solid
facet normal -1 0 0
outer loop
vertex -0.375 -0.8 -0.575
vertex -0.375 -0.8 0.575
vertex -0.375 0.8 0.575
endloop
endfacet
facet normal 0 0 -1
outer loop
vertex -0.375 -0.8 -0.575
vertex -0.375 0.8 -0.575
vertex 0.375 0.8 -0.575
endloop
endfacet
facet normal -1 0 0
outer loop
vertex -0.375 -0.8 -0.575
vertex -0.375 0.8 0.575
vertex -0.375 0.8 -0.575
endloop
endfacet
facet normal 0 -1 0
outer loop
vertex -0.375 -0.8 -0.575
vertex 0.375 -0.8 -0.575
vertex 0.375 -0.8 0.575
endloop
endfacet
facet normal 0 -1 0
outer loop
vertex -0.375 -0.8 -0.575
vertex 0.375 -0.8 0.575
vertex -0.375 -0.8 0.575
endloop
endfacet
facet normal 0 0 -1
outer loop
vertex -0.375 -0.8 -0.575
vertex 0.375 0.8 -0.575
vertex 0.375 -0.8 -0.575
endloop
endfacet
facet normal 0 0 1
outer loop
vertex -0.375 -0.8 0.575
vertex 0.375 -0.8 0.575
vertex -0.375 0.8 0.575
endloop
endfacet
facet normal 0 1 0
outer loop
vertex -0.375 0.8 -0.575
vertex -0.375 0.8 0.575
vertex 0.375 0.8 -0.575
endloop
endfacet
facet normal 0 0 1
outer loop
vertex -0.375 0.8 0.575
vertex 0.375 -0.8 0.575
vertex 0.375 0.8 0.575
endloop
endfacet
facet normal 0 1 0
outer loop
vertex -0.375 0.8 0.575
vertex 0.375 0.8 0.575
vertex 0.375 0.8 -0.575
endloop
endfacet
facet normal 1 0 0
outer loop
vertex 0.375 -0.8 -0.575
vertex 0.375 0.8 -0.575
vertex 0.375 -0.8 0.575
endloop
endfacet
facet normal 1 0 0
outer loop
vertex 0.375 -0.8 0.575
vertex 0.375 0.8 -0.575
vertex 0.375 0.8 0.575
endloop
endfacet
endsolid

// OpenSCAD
// Start: lazy_union
default_5_default_5();
// End: lazy_union

// Modules.

// 'PartMaterial undef-default - default 5.0'
module default_5_default_5() {
  // 'None : _combine_solids_and_holes'
  union() {
    // 'default : _combine_solids_and_holes'
    union() {
      // 'terminal'
      multmatrix(m=[[1.0, 0.0, 0.0, -0.375], [0.0, 1.0, 0.0, -0.8], [0.0, 0.0, 1.0, -0.575], [0.0, 0.0, 0.0, 1.0]]) {
        // 'terminal'
        color(c=[0.7529411764705882, 0.7529411764705882, 0.7529411764705882, 1.0]) {
          // 'terminal : _combine_solids_and_holes'
          union() {
            // 'terminal'
            cube(size=[0.75, 1.6, 1.15]);
          }
        }
      }
    }
  }
} // end module default_5_default_5
